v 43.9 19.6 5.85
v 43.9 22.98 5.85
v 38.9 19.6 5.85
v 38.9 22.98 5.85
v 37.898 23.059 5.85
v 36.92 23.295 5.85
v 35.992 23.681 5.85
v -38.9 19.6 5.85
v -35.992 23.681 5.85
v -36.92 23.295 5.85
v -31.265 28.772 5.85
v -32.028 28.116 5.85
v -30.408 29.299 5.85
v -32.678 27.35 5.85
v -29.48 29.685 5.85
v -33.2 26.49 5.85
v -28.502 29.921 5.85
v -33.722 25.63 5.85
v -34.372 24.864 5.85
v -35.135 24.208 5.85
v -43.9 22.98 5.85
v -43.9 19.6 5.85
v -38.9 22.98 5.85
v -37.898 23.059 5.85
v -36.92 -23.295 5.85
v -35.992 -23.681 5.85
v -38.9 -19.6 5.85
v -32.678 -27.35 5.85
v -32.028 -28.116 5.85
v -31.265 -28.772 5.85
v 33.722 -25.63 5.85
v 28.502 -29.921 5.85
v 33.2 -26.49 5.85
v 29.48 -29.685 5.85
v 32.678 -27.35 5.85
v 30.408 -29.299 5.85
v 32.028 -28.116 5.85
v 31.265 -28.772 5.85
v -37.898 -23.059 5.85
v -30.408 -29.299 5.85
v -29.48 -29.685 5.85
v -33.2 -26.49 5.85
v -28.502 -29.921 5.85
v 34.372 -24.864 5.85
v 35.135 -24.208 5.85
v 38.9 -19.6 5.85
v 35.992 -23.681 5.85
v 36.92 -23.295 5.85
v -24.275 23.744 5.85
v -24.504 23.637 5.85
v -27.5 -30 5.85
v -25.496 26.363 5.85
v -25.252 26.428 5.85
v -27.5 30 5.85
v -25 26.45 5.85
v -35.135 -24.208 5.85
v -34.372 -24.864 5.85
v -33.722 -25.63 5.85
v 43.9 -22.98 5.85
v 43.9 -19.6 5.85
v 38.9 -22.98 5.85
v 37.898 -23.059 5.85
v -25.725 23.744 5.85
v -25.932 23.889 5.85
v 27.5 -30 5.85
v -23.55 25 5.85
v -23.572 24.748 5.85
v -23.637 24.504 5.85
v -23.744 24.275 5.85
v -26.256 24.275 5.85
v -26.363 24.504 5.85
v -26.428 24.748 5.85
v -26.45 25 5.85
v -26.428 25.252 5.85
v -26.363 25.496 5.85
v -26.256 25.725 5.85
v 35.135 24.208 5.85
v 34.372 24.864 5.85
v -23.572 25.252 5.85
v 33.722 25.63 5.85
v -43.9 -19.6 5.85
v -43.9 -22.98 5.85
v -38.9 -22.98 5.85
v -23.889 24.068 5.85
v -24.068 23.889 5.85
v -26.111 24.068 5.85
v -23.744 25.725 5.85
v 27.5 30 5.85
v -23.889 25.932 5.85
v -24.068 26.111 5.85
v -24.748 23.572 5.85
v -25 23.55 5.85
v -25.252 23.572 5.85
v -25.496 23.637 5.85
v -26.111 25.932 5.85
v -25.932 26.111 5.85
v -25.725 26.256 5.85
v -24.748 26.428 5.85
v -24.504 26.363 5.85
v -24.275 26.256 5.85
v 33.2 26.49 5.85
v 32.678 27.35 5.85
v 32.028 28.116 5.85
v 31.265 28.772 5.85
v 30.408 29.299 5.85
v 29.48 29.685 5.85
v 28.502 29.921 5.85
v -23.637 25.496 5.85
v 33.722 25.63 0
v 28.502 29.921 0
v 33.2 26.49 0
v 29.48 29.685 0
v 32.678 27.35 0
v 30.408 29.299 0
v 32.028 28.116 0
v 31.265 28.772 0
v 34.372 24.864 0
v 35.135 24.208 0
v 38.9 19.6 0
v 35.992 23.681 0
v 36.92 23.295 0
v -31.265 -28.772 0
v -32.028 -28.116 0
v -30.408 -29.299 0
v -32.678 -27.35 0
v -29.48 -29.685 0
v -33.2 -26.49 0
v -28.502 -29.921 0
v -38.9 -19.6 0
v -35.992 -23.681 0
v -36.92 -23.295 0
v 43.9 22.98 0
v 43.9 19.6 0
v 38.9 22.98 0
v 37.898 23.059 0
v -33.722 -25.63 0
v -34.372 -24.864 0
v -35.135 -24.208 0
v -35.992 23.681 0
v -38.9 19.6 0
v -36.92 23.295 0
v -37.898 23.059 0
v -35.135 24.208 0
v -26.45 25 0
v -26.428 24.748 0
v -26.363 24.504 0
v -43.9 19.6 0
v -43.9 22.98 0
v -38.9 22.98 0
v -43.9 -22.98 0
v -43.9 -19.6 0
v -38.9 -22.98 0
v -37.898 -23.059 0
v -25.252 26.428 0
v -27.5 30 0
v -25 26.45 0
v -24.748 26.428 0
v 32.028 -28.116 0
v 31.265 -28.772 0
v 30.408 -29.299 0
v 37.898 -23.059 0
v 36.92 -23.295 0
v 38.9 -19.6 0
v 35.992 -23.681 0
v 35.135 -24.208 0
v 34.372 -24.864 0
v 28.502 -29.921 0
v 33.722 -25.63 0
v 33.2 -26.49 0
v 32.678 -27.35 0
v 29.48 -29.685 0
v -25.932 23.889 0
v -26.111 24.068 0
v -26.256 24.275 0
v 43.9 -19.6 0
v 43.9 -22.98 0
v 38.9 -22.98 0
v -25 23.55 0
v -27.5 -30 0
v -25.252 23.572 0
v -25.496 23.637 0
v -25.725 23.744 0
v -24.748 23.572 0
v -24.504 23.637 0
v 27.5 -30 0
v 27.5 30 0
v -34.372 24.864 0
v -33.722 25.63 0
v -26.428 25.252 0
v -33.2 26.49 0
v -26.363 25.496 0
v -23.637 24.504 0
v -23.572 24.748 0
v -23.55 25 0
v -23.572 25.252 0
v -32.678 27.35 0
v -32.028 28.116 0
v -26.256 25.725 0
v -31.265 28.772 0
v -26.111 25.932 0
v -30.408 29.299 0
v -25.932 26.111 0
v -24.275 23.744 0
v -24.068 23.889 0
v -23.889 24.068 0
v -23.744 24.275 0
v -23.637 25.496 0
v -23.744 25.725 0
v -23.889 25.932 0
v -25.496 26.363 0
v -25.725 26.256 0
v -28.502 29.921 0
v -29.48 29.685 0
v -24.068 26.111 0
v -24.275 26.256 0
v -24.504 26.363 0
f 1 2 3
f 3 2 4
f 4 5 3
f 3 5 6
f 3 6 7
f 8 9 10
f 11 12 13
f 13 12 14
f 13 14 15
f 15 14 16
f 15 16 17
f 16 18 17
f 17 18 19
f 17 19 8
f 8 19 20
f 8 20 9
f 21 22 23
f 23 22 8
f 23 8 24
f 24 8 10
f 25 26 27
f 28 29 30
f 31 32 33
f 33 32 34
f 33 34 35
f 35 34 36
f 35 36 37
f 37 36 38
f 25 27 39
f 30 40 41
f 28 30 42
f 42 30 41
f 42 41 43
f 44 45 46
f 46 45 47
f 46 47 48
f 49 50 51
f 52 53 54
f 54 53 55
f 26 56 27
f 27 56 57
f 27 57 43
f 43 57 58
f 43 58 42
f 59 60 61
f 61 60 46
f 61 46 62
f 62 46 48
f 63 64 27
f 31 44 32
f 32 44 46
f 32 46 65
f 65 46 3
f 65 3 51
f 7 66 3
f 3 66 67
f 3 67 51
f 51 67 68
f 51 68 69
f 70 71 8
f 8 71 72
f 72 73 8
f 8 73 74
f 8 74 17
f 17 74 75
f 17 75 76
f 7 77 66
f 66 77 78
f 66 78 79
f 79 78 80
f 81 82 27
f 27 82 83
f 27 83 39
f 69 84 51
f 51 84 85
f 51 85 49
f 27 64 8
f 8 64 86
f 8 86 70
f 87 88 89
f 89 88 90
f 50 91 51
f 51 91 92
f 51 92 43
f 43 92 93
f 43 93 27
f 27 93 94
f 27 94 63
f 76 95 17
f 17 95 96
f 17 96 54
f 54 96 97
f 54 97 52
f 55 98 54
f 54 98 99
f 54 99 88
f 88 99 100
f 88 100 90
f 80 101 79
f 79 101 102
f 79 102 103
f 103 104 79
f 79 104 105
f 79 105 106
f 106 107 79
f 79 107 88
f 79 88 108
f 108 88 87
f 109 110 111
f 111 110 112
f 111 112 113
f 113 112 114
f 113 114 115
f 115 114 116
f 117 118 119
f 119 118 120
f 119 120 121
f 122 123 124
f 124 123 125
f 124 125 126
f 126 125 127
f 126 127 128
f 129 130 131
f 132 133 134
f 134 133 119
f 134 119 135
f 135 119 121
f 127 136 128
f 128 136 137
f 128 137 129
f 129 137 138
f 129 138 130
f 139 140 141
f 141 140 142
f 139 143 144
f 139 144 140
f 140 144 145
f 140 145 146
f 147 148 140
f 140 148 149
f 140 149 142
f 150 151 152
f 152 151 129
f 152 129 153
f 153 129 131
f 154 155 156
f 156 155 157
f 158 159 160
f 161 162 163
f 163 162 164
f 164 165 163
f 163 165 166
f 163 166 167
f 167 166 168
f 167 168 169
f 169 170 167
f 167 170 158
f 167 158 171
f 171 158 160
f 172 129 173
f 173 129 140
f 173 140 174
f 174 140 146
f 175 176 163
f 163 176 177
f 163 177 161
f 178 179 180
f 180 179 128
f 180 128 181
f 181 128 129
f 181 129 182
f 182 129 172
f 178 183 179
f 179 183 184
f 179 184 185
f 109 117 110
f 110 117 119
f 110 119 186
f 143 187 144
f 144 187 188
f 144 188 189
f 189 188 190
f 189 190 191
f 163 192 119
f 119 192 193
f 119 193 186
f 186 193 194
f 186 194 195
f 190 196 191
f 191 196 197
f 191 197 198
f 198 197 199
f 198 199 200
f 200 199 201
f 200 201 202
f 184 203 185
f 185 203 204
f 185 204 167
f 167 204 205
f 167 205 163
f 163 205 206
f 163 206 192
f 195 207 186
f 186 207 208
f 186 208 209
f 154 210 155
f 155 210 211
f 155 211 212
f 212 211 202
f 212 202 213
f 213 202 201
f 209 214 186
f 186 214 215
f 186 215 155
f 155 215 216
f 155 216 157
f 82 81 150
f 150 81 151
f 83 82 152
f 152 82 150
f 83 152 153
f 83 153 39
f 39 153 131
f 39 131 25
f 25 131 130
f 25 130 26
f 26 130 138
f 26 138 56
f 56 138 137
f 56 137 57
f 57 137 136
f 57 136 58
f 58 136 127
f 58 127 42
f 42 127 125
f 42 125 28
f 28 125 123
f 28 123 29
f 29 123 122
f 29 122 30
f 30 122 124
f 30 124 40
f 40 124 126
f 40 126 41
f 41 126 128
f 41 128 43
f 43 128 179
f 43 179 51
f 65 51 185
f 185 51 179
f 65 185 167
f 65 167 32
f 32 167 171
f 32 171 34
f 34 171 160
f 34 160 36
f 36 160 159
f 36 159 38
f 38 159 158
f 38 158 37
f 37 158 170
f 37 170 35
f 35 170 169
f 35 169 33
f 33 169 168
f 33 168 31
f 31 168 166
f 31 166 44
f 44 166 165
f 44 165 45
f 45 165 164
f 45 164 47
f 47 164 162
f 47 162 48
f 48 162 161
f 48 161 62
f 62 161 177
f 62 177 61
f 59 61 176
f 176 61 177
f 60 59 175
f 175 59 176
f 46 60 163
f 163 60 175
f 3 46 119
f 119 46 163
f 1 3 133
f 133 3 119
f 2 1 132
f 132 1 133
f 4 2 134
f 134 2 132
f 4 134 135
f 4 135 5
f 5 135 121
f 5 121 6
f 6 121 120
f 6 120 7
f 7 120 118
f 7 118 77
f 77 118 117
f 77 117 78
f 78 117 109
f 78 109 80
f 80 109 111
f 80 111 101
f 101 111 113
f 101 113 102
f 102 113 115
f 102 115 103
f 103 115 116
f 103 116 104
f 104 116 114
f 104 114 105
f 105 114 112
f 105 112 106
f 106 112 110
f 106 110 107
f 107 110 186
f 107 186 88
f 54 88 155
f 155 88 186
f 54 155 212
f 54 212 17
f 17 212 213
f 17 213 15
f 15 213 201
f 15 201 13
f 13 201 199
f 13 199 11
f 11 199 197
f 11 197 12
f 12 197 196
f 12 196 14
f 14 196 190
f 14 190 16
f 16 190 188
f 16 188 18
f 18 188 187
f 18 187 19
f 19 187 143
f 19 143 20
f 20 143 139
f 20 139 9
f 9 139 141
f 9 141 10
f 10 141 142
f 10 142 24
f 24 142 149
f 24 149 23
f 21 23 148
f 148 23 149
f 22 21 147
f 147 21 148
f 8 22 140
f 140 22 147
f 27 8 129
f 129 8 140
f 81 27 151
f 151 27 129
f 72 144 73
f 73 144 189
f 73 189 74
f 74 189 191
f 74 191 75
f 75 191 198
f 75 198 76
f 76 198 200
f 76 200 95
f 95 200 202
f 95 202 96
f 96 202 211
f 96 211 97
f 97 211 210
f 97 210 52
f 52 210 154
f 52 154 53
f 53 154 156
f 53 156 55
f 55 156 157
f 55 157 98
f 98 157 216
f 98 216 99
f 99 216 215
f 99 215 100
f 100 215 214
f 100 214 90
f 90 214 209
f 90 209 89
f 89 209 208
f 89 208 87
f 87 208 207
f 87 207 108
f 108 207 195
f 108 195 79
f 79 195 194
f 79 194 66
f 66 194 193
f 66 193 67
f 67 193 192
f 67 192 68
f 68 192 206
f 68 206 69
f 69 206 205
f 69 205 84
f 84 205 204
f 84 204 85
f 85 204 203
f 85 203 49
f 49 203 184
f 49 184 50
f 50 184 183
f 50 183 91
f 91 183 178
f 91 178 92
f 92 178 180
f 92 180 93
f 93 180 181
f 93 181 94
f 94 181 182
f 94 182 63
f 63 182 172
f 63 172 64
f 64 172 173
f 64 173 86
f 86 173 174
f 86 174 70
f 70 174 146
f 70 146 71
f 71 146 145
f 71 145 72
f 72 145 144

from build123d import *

# Parameters (mm, degrees)
SKETCH1_R           = 1.45
BOSS_EXTRUDE1_DEPTH = 5.85


with BuildPart() as part:
    # Sketch1 → Boss-Extrude1 (new body)
    with BuildSketch(Plane.XY):
        with BuildLine():
            Line((-38.9, 19.6), (-38.9, -19.6))
            Line((-38.9, -19.6), (-43.9, -19.6))
            Line((-43.9, -19.6), (-43.9, -22.98))
            Line((-43.9, -22.98), (-38.9, -22.98))
            ThreePointArc((-38.9, -22.98), (-35.552982671, -23.927877842), (-33.2, -26.49))
            ThreePointArc((-33.2, -26.49), (-30.847017329, -29.052122158), (-27.5, -30))
            Line((-27.5, -30), (27.5, -30))
            ThreePointArc((27.5, -30), (30.847017329, -29.052122158), (33.2, -26.49))
            ThreePointArc((33.2, -26.49), (35.552982671, -23.927877842), (38.9, -22.98))
            Line((38.9, -22.98), (43.9, -22.98))
            Line((43.9, -22.98), (43.9, -19.6))
            Line((43.9, -19.6), (38.9, -19.6))
            Line((38.9, -19.6), (38.9, 19.6))
            Line((38.9, 19.6), (43.9, 19.6))
            Line((43.9, 19.6), (43.9, 22.98))
            Line((43.9, 22.98), (38.9, 22.98))
            ThreePointArc((38.9, 22.98), (35.552982671, 23.927877842), (33.2, 26.49))
            ThreePointArc((33.2, 26.49), (30.847017329, 29.052122158), (27.5, 30))
            Line((27.5, 30), (-27.5, 30))
            ThreePointArc((-27.5, 30), (-30.847017329, 29.052122158), (-33.2, 26.49))
            ThreePointArc((-33.2, 26.49), (-35.552982671, 23.927877842), (-38.9, 22.98))
            Line((-38.9, 22.98), (-43.9, 22.98))
            Line((-43.9, 22.98), (-43.9, 19.6))
            Line((-43.9, 19.6), (-38.9, 19.6))
        make_face()
        with Locations((-25, 25)):
            Circle(SKETCH1_R, mode=Mode.SUBTRACT)
    extrude(amount=BOSS_EXTRUDE1_DEPTH)


solid = part.part
